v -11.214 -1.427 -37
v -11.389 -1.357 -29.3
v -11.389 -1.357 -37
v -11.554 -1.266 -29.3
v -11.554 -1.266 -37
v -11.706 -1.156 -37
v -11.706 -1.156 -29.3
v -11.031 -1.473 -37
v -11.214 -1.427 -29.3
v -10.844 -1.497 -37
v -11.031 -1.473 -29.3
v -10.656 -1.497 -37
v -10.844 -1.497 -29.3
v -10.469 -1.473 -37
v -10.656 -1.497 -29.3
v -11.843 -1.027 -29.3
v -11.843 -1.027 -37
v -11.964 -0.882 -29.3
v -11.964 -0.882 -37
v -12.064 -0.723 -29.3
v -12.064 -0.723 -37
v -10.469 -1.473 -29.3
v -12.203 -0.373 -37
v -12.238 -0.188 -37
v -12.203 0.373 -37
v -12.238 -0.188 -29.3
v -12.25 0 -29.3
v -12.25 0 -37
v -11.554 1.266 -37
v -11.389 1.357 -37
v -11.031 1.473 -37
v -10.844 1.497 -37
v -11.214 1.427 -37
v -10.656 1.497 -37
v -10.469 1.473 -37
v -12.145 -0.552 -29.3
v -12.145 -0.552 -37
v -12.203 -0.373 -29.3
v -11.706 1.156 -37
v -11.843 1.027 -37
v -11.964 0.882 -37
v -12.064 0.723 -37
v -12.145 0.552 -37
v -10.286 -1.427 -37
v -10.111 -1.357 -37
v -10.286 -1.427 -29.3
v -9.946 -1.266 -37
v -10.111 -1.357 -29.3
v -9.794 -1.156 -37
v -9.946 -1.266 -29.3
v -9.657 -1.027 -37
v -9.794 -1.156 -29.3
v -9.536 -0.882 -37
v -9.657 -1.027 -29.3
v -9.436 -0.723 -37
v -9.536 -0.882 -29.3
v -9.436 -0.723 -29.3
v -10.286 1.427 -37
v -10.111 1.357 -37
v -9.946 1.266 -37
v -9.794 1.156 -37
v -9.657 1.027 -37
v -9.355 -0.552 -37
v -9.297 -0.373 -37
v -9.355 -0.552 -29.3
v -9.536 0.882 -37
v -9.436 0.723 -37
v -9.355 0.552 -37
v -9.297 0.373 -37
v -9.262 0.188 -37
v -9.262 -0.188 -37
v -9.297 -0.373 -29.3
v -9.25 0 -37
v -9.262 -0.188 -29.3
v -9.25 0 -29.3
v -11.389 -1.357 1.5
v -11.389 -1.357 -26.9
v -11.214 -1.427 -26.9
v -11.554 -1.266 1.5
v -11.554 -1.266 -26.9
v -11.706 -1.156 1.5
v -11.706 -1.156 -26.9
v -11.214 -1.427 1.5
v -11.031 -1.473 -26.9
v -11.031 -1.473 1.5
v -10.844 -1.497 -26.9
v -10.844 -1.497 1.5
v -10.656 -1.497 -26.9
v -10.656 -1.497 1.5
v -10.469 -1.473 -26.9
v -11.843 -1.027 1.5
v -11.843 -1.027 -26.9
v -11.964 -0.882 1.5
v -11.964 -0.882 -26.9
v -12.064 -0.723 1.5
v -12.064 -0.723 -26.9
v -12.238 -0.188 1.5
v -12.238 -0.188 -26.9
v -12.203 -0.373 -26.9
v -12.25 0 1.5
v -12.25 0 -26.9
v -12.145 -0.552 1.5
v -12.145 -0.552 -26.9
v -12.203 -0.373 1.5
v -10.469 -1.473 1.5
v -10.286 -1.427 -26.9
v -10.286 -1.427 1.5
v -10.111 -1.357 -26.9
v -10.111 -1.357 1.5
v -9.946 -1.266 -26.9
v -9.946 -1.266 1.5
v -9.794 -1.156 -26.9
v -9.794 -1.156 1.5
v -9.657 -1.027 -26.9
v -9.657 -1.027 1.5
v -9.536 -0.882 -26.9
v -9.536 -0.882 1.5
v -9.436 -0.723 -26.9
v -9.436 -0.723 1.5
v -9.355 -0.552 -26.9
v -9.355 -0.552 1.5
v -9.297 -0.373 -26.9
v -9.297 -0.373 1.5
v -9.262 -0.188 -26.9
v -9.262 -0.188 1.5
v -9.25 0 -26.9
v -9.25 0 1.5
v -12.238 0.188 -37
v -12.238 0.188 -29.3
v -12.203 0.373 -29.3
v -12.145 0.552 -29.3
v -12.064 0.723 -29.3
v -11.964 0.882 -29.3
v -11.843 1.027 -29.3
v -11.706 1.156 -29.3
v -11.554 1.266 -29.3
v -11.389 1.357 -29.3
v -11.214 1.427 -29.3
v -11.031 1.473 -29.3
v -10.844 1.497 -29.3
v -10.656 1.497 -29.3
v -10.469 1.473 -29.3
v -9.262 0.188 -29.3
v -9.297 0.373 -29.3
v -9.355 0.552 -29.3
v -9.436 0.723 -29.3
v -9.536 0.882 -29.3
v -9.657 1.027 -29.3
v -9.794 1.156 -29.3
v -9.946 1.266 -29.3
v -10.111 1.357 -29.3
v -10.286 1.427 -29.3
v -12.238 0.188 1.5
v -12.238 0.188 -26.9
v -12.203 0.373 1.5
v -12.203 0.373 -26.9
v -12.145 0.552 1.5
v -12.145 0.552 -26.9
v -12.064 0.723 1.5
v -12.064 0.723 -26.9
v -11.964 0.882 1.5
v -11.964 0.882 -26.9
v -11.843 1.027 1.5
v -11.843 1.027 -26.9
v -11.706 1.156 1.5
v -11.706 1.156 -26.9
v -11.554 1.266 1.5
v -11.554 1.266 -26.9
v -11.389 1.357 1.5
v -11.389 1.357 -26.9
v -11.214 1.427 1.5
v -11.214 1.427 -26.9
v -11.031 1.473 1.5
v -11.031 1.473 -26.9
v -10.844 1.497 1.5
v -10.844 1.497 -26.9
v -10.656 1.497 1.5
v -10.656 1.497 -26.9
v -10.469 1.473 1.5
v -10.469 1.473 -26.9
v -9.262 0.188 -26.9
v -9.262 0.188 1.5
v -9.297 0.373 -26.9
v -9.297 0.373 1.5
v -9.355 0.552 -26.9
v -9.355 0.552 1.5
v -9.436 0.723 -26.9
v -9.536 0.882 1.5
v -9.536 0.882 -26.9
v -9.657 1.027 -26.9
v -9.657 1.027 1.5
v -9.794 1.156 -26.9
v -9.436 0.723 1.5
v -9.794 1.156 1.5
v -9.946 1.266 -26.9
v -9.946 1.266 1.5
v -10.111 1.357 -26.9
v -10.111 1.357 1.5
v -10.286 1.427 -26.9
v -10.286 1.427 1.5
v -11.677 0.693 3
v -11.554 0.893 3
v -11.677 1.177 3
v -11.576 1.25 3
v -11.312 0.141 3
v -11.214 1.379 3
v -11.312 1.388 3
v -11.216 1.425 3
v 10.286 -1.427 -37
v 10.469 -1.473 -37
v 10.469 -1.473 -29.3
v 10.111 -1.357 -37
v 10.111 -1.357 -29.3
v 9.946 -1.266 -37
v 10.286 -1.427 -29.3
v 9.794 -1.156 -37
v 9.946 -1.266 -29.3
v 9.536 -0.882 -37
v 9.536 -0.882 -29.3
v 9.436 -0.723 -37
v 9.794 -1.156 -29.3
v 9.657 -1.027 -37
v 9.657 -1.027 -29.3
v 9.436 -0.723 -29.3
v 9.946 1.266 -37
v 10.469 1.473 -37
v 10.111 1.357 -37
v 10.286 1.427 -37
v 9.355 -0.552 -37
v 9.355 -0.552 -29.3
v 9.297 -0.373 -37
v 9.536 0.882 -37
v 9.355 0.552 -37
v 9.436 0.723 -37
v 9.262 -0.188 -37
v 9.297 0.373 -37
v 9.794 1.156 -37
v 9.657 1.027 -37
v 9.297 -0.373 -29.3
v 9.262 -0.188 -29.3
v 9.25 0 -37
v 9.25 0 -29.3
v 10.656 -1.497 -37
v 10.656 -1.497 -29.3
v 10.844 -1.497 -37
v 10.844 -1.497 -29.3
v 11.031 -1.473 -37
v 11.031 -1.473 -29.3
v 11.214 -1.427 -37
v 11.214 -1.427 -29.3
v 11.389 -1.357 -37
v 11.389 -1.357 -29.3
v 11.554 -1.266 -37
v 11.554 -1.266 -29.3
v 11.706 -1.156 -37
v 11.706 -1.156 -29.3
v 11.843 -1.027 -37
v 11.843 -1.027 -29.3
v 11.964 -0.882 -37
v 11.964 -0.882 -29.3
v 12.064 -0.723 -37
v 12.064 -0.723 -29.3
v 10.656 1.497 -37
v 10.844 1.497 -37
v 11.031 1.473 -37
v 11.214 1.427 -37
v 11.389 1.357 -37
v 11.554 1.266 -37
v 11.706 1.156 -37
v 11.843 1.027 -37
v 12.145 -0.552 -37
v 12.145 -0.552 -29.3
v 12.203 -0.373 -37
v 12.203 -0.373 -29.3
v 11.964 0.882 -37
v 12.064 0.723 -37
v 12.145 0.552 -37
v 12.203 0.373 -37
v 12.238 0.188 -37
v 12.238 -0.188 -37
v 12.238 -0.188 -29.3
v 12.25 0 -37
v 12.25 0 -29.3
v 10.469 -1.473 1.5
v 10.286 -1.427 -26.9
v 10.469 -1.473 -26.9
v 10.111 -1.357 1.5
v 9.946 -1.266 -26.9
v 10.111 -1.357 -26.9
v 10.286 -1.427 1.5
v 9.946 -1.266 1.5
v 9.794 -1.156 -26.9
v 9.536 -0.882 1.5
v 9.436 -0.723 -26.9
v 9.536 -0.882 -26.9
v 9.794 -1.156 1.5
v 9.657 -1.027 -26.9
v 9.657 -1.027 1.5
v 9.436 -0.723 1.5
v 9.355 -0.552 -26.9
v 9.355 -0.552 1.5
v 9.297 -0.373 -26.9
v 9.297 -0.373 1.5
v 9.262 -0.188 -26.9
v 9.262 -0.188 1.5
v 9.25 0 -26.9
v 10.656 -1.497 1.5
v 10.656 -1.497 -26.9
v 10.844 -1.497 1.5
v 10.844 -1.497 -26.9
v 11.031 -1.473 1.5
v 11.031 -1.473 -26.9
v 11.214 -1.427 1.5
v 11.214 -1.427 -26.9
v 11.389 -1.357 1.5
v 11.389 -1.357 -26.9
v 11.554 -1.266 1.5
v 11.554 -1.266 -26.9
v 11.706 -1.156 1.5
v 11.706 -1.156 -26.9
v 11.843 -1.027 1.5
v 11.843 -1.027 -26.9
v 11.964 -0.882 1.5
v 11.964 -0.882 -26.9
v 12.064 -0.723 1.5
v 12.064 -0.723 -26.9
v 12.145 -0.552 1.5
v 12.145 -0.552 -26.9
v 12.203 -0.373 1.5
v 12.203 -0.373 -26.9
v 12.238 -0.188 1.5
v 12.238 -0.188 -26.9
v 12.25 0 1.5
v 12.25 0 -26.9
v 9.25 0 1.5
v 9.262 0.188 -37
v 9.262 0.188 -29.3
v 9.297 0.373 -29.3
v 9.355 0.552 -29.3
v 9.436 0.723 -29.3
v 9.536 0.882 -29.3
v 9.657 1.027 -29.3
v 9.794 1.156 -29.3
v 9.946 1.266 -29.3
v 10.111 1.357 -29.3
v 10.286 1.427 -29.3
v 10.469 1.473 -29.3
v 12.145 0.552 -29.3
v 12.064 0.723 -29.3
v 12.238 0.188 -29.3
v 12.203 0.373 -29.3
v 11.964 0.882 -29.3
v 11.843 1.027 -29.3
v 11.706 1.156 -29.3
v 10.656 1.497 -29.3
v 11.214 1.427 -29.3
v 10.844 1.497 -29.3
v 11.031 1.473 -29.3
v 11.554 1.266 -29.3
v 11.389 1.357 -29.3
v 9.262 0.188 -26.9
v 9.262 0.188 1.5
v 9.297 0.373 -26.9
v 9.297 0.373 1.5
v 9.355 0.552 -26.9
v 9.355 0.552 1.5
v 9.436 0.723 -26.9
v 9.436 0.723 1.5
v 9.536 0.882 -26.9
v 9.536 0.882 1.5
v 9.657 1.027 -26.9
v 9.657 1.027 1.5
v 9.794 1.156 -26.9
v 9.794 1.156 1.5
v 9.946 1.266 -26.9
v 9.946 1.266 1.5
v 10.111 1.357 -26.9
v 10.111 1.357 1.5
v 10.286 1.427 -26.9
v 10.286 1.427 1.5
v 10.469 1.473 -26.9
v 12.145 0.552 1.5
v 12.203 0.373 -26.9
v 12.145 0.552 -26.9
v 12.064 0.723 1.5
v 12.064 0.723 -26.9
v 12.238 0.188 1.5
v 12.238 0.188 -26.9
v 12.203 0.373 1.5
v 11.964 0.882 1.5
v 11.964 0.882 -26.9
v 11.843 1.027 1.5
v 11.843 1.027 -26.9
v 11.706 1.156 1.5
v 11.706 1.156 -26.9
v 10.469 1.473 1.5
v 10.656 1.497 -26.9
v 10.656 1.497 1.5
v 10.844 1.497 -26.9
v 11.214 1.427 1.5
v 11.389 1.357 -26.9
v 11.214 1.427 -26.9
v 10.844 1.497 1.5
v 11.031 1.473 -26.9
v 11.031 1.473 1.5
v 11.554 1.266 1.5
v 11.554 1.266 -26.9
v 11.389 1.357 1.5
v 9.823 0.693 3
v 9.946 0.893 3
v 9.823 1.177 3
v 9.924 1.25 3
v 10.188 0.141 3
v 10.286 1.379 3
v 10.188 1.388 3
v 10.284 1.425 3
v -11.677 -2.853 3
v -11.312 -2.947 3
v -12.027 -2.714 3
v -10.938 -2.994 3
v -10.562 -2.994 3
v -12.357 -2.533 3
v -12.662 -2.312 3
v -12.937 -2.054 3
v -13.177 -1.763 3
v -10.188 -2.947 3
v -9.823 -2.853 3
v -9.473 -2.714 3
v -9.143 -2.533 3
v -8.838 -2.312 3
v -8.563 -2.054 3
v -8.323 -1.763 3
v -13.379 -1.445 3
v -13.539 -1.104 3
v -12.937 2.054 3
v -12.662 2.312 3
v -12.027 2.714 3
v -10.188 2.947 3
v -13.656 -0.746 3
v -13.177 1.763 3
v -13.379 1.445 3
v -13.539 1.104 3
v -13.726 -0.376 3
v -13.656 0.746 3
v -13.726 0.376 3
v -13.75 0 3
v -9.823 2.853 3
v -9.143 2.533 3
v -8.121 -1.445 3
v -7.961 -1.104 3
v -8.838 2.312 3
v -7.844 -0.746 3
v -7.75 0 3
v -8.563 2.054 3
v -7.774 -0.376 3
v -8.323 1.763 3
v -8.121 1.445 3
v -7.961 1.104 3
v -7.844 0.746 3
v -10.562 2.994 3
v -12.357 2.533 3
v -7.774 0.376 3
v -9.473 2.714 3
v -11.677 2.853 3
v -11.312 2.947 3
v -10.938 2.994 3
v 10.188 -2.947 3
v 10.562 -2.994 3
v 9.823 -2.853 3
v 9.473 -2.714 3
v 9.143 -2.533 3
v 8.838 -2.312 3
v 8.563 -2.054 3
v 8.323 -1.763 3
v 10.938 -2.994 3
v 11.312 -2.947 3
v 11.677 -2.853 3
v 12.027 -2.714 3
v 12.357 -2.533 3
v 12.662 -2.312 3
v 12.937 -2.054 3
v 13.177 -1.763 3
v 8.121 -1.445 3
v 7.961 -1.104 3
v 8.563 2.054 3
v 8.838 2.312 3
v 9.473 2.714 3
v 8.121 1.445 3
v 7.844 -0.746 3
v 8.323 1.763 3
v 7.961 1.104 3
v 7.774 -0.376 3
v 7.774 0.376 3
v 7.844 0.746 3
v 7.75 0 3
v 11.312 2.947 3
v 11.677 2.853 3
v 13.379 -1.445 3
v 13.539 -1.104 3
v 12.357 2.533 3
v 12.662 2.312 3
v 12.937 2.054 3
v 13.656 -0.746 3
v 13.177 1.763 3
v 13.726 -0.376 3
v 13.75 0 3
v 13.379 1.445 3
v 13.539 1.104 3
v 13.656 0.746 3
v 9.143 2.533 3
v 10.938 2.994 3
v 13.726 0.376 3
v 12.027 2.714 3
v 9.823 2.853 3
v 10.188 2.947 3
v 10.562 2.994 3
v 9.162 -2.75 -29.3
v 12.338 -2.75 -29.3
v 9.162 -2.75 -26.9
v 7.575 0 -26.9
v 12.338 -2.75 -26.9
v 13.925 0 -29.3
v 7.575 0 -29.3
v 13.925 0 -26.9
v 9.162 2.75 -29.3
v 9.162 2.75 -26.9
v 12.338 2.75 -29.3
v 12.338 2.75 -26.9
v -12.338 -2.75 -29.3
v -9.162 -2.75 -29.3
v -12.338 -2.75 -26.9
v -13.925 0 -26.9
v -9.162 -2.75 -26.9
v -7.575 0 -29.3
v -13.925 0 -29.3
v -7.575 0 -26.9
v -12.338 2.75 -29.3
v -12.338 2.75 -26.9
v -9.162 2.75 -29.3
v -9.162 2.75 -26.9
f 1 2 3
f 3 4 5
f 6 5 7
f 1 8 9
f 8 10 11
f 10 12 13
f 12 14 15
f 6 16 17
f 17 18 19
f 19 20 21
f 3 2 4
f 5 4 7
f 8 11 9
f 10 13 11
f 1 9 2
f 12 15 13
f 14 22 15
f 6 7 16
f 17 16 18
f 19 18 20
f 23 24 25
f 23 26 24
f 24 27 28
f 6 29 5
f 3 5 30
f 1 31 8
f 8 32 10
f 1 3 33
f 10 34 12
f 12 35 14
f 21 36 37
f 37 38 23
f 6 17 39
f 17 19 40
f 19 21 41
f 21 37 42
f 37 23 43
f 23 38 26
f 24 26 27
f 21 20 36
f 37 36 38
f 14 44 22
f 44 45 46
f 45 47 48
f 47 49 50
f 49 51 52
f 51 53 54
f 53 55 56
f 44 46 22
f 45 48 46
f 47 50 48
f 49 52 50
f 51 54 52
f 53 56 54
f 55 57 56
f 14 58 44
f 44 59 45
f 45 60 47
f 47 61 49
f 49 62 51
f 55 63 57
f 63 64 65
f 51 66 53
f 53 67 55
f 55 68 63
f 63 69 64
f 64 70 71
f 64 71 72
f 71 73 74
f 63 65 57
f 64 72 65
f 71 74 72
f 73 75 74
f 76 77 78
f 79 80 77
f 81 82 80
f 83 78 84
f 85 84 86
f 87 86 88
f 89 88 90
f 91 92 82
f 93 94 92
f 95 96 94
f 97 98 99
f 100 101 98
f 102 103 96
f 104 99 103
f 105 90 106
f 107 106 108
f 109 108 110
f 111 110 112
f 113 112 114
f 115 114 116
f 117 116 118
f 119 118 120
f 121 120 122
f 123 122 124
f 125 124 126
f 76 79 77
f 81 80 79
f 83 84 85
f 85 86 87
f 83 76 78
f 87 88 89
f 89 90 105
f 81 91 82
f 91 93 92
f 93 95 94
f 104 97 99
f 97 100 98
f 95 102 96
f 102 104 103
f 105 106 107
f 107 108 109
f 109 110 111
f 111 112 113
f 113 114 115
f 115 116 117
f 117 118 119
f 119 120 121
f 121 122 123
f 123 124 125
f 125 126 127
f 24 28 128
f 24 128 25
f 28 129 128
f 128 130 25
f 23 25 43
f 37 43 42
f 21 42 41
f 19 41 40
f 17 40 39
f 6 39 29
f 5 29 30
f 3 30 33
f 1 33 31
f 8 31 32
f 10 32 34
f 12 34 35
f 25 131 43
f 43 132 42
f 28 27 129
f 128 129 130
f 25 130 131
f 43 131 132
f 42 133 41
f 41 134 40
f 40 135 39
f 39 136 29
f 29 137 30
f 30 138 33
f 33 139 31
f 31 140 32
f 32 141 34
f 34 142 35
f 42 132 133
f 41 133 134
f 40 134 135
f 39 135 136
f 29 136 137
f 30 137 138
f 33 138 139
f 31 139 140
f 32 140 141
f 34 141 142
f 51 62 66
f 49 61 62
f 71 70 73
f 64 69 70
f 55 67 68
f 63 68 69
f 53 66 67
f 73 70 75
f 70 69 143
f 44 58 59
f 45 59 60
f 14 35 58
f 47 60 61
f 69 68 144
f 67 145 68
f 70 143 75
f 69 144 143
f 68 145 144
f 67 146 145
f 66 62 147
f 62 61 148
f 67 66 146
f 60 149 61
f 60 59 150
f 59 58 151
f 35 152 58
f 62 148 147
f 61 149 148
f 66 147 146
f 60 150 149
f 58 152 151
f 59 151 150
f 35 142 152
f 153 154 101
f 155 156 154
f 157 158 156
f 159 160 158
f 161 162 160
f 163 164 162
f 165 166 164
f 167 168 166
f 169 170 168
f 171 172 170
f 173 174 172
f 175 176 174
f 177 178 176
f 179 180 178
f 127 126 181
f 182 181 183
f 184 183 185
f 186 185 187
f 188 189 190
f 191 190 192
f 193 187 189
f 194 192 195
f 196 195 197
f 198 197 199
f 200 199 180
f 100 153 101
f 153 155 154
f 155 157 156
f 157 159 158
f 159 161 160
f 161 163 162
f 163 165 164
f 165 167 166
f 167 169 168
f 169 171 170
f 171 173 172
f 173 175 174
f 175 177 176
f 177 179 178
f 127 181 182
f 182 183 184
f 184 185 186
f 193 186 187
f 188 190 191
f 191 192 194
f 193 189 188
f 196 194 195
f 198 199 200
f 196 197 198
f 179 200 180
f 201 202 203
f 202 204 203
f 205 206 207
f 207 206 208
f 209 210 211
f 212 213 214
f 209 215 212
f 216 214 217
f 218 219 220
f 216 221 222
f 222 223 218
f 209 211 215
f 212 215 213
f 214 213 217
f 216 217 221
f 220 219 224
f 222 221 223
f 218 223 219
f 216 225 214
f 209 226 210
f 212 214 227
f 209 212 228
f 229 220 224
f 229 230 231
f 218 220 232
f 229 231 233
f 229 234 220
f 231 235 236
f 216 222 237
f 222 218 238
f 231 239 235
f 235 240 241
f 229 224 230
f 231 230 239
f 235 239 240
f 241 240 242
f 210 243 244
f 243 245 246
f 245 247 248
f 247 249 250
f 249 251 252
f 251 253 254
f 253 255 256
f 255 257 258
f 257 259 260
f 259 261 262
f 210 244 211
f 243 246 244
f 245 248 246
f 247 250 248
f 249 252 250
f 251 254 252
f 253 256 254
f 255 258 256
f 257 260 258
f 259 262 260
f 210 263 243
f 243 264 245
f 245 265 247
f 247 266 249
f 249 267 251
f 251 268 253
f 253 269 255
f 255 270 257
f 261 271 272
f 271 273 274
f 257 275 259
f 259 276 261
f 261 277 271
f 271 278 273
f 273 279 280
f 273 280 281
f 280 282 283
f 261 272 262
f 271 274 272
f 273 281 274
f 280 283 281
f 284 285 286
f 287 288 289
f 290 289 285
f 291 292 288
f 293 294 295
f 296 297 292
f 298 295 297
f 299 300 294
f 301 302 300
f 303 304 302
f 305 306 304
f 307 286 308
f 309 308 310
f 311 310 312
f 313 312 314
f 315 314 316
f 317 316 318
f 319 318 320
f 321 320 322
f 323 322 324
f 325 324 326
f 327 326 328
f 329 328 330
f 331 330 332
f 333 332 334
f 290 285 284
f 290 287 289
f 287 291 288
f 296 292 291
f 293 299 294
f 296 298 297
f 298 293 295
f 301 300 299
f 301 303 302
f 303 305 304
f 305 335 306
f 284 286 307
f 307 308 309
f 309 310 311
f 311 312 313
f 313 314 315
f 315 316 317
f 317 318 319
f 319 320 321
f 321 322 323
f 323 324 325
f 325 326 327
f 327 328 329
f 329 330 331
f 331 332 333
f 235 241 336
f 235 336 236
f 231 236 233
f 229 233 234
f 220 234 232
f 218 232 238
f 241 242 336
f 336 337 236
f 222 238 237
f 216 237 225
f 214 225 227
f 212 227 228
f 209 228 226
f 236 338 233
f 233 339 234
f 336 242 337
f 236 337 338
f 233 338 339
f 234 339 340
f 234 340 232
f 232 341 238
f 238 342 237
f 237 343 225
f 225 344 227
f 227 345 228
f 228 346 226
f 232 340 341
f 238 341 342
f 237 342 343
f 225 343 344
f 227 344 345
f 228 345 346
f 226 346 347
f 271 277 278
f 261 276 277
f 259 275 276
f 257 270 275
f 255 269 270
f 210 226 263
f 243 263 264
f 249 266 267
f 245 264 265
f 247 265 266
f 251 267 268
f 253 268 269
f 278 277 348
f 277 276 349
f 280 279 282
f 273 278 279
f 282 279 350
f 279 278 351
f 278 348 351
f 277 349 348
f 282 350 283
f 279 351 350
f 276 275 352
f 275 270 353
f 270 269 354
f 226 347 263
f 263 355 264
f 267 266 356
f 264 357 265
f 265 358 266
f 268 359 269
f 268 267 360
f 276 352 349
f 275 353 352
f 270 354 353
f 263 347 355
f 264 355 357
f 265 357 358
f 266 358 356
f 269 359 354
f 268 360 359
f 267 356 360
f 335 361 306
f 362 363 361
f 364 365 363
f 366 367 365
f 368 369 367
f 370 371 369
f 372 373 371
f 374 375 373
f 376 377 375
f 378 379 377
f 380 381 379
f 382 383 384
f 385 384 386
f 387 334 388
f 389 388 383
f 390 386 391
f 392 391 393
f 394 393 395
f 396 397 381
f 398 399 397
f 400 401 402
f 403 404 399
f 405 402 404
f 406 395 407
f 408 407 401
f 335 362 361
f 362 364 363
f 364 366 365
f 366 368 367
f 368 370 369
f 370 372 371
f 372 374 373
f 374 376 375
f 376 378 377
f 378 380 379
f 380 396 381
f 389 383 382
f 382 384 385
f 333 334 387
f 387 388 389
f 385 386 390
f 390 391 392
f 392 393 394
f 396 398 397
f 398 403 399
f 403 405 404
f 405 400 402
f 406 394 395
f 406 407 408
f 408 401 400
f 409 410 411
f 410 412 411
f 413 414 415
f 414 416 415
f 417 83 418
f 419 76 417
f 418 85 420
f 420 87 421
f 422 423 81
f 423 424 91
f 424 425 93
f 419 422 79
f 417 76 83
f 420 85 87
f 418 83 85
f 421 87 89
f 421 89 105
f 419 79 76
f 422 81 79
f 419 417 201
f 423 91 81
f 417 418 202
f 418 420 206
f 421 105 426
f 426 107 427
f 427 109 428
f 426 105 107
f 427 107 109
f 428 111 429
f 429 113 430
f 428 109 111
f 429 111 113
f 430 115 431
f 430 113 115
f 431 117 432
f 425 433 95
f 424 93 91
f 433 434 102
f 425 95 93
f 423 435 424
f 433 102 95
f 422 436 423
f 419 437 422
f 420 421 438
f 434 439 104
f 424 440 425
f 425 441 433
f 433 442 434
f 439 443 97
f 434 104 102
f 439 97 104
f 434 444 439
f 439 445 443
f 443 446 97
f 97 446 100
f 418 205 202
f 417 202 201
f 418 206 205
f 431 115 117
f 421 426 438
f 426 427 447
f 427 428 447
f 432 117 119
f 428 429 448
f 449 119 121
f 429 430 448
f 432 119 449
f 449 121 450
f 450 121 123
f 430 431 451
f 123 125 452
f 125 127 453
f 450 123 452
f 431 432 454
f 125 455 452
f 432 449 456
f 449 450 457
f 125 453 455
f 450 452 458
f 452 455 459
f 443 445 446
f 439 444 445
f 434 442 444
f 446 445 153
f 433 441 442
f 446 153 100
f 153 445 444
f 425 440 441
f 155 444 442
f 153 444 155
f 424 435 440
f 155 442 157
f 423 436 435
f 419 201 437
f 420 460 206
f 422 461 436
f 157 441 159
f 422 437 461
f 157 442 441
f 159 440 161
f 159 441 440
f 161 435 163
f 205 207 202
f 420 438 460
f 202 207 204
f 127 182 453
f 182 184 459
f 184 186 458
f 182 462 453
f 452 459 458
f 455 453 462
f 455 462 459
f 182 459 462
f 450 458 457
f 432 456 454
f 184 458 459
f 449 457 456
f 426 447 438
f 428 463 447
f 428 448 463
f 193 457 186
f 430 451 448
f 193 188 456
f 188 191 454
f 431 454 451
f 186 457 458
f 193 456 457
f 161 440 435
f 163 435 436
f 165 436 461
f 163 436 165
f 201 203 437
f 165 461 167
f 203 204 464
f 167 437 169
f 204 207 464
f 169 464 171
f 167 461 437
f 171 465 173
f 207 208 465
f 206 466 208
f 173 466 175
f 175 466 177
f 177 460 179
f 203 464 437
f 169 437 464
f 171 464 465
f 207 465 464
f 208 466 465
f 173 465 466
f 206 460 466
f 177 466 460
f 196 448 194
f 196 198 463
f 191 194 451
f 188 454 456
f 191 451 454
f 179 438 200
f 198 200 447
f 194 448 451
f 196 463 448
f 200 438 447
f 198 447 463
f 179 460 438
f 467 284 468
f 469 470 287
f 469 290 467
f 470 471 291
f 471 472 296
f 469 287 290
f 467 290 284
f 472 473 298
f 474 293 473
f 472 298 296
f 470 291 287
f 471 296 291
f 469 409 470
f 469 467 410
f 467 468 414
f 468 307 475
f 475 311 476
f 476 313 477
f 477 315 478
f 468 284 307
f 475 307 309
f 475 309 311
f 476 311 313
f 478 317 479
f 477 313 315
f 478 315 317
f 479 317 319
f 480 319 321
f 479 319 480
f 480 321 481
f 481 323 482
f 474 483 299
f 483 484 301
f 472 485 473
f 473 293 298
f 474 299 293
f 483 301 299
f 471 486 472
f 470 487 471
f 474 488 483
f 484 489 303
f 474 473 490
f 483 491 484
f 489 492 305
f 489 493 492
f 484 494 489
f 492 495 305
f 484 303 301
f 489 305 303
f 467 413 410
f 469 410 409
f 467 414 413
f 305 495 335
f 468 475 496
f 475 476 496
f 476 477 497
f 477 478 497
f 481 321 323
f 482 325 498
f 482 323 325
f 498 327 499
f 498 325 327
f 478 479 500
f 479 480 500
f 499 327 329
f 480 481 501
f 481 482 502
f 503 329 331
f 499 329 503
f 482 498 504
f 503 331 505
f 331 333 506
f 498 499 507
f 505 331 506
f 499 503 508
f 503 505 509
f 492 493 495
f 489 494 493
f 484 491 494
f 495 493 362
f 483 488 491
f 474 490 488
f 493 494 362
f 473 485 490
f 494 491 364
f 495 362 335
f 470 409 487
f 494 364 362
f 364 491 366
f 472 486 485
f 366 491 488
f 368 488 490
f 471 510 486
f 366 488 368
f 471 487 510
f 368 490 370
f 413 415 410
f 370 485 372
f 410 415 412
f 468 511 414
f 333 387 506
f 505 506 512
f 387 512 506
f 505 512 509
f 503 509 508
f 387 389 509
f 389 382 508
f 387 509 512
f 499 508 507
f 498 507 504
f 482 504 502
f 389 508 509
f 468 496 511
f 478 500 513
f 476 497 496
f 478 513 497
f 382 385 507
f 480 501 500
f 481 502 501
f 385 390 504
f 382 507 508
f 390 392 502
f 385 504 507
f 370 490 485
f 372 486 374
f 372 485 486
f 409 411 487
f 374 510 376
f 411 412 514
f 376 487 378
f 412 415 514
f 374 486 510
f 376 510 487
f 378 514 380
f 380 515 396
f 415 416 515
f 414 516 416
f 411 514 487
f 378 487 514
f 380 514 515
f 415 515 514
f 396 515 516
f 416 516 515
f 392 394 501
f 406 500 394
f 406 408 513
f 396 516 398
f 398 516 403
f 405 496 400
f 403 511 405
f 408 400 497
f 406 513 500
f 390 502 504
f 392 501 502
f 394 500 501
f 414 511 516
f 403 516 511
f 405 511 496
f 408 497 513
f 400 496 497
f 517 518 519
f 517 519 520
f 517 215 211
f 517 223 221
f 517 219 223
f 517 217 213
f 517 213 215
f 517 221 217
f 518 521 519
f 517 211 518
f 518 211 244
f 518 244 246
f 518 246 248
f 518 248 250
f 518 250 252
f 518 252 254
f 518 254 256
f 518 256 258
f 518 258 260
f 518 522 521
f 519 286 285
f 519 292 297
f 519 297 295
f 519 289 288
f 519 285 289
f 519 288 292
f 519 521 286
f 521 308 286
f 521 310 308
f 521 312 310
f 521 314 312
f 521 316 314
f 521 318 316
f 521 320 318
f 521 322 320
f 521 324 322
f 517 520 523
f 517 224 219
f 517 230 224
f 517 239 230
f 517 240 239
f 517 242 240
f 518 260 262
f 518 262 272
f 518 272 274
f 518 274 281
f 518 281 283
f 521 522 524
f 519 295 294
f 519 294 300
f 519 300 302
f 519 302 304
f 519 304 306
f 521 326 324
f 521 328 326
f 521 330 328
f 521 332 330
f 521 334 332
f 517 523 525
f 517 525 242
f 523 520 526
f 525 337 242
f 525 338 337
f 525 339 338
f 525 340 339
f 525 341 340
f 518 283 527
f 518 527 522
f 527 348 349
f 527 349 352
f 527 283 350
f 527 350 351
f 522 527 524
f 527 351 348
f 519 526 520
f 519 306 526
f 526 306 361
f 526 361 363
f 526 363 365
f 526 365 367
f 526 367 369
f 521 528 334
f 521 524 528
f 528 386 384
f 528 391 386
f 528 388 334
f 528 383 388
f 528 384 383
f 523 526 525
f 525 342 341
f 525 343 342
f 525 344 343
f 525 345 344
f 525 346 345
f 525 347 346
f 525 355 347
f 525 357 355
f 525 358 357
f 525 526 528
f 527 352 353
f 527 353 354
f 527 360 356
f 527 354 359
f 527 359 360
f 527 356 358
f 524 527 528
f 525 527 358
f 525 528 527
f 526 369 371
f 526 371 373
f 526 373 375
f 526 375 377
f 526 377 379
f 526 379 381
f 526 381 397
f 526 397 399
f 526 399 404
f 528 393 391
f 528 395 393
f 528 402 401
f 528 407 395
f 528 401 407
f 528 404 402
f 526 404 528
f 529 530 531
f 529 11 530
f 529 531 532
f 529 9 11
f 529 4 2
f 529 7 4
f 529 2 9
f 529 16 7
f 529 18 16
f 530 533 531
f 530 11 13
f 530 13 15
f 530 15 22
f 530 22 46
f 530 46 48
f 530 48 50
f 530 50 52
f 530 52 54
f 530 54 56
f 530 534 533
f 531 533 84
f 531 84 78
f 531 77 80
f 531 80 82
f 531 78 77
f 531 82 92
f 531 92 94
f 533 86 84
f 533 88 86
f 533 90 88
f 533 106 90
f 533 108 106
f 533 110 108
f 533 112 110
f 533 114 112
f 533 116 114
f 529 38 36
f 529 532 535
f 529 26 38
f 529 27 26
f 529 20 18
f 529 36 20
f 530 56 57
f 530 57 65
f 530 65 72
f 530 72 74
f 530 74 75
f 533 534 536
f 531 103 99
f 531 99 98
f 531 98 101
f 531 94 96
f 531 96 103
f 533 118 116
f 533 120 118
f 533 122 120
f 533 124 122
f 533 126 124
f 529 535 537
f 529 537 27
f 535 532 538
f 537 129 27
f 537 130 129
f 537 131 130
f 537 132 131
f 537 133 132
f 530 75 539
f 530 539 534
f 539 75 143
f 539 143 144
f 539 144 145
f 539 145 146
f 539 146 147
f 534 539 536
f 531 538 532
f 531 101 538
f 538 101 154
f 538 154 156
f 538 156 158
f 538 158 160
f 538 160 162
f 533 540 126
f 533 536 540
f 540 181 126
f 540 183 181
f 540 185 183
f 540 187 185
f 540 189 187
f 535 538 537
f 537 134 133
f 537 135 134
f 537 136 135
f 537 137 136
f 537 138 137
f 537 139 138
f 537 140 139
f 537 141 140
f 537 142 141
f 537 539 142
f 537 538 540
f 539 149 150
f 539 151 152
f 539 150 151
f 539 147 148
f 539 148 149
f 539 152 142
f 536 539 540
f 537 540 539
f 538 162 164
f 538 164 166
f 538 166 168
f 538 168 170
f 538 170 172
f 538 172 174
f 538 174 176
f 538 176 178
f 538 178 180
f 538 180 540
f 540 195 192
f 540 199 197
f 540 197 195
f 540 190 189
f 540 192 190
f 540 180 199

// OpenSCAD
$fn = 50;

difference() {
	union() {
		translate(v = [-10.75, 0, 3]) {
			rotate(a = [0, 0, 0]) {
				difference() {
					union() {
						translate(v = [0, 0, -40.0]) {
							cylinder(h = 40, r = 1.5);
						}
						translate(v = [0, 0, -1.5]) {
							cylinder(h = 1.5, r1 = 1.5, r2 = 3);
						}
					}
					union();
				}
			}
		}
		translate(v = [-10.75, 0, -29.3]) {
			rotate(a = [0, 0, 0]) {
				difference() {
					union() {
						linear_extrude(height = 2.4) {
							polygon(points = [[3.1754264805429417, 0.0], [1.5877132402714713, 2.75], [-1.5877132402714702, 2.7500000000000004], [-3.1754264805429417, 3.888775875324659e-16], [-1.5877132402714722, -2.7499999999999996], [1.5877132402714687, -2.7500000000000013]]);
						}
					}
					union();
				}
			}
		}
		translate(v = [10.75, 0, 3]) {
			rotate(a = [0, 0, 0]) {
				difference() {
					union() {
						translate(v = [0, 0, -40.0]) {
							cylinder(h = 40, r = 1.5);
						}
						translate(v = [0, 0, -1.5]) {
							cylinder(h = 1.5, r1 = 1.5, r2 = 3);
						}
					}
					union();
				}
			}
		}
		translate(v = [10.75, 0, -29.3]) {
			rotate(a = [0, 0, 0]) {
				difference() {
					union() {
						linear_extrude(height = 2.4) {
							polygon(points = [[3.1754264805429417, 0.0], [1.5877132402714713, 2.75], [-1.5877132402714702, 2.7500000000000004], [-3.1754264805429417, 3.888775875324659e-16], [-1.5877132402714722, -2.7499999999999996], [1.5877132402714687, -2.7500000000000013]]);
						}
					}
					union();
				}
			}
		}
	}
	union();
}
